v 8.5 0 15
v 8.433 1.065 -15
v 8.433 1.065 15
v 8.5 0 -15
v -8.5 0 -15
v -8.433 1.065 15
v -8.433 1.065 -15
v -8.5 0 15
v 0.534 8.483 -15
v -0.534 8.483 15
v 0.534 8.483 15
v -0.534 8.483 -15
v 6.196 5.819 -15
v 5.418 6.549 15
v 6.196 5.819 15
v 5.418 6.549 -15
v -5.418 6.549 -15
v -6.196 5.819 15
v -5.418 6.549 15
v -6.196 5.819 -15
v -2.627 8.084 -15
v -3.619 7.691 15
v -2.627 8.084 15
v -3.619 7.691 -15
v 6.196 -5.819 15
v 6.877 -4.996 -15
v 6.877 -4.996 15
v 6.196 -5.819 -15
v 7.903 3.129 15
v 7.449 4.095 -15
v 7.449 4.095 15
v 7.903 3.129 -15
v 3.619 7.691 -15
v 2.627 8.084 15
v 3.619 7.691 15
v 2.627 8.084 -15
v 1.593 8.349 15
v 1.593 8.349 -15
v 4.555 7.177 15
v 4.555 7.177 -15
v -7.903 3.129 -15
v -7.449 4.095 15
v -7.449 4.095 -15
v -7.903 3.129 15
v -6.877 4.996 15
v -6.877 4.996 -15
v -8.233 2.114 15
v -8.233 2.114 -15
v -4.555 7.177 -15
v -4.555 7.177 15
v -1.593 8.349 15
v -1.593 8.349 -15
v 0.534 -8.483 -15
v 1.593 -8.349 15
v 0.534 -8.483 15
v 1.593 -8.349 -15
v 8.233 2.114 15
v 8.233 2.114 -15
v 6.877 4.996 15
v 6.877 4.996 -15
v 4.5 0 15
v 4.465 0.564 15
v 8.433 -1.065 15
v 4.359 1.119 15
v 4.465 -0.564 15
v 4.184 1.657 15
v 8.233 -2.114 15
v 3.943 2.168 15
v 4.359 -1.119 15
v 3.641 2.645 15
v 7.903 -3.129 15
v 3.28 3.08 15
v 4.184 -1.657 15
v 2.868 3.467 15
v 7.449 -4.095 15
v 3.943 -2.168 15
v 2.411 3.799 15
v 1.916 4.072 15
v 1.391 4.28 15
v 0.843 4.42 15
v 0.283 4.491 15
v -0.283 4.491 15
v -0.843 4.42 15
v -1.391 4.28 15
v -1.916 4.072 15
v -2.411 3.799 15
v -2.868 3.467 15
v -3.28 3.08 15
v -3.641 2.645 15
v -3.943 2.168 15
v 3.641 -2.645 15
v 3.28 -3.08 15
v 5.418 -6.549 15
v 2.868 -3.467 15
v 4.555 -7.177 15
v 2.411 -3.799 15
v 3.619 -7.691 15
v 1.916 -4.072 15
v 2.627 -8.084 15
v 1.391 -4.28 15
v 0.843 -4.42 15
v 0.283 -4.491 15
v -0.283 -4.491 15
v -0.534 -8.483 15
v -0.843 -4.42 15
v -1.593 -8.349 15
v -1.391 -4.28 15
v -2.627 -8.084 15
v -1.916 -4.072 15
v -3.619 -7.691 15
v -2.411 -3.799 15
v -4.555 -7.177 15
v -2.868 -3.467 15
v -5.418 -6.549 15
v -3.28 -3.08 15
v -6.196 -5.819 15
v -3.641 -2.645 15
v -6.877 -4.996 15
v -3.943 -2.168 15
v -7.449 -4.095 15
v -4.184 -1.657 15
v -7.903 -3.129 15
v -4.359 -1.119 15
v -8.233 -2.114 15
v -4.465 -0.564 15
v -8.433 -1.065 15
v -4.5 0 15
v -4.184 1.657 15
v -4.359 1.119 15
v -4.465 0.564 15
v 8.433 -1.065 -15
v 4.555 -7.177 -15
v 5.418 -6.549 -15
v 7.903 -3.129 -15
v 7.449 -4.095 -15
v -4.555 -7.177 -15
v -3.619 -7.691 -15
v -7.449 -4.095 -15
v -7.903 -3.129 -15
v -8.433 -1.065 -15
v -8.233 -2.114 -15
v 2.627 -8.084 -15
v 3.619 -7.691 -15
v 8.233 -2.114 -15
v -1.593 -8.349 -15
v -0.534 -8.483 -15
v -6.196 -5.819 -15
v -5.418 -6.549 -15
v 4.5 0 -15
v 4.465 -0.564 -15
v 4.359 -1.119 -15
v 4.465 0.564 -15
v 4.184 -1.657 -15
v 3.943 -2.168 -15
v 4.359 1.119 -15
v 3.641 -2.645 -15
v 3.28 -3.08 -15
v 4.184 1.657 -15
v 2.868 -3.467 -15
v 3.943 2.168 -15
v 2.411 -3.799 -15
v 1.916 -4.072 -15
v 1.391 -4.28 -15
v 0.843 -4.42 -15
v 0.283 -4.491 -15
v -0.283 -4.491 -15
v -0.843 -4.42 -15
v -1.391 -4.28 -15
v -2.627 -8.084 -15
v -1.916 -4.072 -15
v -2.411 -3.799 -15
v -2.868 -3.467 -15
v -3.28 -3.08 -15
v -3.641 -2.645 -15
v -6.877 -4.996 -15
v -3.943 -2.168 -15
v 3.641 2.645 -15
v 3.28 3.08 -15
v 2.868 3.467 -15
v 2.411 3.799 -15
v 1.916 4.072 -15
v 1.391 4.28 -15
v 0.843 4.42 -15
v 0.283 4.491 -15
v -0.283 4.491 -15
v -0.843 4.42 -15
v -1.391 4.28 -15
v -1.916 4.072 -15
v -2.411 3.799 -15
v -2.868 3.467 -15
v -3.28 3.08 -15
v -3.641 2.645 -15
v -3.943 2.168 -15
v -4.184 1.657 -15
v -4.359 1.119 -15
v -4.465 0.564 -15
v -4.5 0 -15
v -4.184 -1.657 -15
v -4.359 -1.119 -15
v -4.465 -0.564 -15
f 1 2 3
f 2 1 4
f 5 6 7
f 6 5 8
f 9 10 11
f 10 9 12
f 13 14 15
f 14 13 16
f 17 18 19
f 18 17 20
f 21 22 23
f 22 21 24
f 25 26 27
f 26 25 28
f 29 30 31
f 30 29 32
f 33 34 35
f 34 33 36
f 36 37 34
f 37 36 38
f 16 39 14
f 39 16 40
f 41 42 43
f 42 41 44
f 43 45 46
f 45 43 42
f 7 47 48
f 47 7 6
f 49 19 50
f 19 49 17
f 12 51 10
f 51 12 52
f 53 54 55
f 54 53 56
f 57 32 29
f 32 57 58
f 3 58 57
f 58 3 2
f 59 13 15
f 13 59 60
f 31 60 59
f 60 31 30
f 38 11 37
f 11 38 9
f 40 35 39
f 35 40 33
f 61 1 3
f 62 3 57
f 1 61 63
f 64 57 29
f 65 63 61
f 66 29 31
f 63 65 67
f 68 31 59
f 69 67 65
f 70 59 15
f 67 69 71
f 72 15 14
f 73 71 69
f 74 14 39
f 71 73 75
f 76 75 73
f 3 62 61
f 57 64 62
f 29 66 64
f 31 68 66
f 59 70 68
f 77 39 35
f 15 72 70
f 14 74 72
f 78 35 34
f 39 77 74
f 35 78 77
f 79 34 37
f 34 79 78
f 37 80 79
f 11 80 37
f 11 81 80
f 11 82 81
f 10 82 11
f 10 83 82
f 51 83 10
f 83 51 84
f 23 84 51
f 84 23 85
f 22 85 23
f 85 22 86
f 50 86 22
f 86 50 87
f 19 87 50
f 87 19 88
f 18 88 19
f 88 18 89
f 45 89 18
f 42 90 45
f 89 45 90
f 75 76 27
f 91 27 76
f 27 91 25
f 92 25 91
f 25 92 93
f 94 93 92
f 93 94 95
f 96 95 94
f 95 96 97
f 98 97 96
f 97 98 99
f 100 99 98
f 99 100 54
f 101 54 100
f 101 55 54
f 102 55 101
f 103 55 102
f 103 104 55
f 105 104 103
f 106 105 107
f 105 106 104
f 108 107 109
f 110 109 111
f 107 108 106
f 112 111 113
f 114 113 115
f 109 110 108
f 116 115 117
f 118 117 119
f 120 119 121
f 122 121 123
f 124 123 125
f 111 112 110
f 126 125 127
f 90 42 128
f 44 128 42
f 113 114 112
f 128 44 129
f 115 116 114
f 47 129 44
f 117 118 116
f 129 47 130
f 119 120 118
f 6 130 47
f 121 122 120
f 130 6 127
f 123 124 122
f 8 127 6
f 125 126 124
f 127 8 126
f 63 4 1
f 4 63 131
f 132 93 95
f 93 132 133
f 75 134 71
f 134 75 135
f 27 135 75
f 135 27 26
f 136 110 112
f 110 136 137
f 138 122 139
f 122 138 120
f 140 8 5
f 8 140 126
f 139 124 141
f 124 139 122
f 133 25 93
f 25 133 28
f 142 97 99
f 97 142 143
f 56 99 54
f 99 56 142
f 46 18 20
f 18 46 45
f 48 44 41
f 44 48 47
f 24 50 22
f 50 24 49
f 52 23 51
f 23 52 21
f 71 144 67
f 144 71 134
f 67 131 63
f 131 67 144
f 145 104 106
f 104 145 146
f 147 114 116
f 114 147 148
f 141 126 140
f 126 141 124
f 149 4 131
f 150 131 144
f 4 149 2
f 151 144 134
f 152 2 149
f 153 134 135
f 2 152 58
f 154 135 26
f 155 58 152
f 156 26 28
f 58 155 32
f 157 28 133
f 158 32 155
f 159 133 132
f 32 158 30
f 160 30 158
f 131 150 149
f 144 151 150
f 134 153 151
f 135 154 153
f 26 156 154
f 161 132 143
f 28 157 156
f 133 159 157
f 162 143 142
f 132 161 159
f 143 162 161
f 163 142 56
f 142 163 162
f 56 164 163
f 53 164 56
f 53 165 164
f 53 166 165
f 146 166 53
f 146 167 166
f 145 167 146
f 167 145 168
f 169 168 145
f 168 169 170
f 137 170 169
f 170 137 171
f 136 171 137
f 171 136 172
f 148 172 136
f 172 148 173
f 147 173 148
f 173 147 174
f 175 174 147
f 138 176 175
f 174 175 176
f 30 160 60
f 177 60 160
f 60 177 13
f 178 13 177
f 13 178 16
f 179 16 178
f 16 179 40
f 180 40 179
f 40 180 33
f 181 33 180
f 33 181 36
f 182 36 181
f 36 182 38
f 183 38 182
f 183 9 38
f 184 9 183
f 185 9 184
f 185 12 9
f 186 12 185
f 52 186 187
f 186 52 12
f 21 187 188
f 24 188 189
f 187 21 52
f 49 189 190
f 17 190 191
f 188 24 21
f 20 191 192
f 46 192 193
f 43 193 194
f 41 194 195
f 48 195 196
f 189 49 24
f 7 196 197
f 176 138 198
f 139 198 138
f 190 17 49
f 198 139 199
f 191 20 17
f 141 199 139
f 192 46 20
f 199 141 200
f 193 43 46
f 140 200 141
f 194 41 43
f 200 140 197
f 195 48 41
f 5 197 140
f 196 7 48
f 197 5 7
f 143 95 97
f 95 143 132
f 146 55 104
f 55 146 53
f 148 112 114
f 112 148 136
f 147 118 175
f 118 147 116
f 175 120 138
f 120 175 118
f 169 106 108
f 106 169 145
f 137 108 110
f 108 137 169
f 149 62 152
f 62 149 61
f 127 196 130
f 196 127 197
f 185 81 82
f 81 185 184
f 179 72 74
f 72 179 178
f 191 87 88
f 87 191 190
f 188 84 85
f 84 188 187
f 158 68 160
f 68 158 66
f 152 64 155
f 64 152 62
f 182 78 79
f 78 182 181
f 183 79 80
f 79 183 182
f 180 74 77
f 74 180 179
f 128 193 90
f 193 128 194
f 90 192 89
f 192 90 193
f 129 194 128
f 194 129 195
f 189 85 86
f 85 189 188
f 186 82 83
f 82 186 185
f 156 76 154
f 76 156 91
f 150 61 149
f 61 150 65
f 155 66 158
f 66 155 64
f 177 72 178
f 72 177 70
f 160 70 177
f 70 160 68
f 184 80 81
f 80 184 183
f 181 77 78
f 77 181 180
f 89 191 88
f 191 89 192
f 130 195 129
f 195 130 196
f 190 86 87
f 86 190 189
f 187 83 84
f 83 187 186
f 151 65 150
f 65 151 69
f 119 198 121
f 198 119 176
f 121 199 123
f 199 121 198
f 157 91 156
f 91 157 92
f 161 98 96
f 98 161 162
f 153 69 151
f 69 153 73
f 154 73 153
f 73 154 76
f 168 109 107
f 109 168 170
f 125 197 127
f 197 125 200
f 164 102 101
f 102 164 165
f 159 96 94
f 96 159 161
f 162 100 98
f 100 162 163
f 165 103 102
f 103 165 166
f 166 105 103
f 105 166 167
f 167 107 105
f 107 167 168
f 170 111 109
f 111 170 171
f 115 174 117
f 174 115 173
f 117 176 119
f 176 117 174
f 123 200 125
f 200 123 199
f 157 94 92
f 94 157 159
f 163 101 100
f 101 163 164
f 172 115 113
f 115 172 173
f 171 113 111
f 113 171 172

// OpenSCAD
$fn = 50;


difference() {
	union() {
		translate(v = [0, 0, -15.0000000000]) {
			cylinder(h = 30, r = 8.5000000000);
		}
	}
	union() {
		translate(v = [0, 0, -100.0000000000]) {
			cylinder(h = 200, r = 4.5000000000);
		}
	}
}
